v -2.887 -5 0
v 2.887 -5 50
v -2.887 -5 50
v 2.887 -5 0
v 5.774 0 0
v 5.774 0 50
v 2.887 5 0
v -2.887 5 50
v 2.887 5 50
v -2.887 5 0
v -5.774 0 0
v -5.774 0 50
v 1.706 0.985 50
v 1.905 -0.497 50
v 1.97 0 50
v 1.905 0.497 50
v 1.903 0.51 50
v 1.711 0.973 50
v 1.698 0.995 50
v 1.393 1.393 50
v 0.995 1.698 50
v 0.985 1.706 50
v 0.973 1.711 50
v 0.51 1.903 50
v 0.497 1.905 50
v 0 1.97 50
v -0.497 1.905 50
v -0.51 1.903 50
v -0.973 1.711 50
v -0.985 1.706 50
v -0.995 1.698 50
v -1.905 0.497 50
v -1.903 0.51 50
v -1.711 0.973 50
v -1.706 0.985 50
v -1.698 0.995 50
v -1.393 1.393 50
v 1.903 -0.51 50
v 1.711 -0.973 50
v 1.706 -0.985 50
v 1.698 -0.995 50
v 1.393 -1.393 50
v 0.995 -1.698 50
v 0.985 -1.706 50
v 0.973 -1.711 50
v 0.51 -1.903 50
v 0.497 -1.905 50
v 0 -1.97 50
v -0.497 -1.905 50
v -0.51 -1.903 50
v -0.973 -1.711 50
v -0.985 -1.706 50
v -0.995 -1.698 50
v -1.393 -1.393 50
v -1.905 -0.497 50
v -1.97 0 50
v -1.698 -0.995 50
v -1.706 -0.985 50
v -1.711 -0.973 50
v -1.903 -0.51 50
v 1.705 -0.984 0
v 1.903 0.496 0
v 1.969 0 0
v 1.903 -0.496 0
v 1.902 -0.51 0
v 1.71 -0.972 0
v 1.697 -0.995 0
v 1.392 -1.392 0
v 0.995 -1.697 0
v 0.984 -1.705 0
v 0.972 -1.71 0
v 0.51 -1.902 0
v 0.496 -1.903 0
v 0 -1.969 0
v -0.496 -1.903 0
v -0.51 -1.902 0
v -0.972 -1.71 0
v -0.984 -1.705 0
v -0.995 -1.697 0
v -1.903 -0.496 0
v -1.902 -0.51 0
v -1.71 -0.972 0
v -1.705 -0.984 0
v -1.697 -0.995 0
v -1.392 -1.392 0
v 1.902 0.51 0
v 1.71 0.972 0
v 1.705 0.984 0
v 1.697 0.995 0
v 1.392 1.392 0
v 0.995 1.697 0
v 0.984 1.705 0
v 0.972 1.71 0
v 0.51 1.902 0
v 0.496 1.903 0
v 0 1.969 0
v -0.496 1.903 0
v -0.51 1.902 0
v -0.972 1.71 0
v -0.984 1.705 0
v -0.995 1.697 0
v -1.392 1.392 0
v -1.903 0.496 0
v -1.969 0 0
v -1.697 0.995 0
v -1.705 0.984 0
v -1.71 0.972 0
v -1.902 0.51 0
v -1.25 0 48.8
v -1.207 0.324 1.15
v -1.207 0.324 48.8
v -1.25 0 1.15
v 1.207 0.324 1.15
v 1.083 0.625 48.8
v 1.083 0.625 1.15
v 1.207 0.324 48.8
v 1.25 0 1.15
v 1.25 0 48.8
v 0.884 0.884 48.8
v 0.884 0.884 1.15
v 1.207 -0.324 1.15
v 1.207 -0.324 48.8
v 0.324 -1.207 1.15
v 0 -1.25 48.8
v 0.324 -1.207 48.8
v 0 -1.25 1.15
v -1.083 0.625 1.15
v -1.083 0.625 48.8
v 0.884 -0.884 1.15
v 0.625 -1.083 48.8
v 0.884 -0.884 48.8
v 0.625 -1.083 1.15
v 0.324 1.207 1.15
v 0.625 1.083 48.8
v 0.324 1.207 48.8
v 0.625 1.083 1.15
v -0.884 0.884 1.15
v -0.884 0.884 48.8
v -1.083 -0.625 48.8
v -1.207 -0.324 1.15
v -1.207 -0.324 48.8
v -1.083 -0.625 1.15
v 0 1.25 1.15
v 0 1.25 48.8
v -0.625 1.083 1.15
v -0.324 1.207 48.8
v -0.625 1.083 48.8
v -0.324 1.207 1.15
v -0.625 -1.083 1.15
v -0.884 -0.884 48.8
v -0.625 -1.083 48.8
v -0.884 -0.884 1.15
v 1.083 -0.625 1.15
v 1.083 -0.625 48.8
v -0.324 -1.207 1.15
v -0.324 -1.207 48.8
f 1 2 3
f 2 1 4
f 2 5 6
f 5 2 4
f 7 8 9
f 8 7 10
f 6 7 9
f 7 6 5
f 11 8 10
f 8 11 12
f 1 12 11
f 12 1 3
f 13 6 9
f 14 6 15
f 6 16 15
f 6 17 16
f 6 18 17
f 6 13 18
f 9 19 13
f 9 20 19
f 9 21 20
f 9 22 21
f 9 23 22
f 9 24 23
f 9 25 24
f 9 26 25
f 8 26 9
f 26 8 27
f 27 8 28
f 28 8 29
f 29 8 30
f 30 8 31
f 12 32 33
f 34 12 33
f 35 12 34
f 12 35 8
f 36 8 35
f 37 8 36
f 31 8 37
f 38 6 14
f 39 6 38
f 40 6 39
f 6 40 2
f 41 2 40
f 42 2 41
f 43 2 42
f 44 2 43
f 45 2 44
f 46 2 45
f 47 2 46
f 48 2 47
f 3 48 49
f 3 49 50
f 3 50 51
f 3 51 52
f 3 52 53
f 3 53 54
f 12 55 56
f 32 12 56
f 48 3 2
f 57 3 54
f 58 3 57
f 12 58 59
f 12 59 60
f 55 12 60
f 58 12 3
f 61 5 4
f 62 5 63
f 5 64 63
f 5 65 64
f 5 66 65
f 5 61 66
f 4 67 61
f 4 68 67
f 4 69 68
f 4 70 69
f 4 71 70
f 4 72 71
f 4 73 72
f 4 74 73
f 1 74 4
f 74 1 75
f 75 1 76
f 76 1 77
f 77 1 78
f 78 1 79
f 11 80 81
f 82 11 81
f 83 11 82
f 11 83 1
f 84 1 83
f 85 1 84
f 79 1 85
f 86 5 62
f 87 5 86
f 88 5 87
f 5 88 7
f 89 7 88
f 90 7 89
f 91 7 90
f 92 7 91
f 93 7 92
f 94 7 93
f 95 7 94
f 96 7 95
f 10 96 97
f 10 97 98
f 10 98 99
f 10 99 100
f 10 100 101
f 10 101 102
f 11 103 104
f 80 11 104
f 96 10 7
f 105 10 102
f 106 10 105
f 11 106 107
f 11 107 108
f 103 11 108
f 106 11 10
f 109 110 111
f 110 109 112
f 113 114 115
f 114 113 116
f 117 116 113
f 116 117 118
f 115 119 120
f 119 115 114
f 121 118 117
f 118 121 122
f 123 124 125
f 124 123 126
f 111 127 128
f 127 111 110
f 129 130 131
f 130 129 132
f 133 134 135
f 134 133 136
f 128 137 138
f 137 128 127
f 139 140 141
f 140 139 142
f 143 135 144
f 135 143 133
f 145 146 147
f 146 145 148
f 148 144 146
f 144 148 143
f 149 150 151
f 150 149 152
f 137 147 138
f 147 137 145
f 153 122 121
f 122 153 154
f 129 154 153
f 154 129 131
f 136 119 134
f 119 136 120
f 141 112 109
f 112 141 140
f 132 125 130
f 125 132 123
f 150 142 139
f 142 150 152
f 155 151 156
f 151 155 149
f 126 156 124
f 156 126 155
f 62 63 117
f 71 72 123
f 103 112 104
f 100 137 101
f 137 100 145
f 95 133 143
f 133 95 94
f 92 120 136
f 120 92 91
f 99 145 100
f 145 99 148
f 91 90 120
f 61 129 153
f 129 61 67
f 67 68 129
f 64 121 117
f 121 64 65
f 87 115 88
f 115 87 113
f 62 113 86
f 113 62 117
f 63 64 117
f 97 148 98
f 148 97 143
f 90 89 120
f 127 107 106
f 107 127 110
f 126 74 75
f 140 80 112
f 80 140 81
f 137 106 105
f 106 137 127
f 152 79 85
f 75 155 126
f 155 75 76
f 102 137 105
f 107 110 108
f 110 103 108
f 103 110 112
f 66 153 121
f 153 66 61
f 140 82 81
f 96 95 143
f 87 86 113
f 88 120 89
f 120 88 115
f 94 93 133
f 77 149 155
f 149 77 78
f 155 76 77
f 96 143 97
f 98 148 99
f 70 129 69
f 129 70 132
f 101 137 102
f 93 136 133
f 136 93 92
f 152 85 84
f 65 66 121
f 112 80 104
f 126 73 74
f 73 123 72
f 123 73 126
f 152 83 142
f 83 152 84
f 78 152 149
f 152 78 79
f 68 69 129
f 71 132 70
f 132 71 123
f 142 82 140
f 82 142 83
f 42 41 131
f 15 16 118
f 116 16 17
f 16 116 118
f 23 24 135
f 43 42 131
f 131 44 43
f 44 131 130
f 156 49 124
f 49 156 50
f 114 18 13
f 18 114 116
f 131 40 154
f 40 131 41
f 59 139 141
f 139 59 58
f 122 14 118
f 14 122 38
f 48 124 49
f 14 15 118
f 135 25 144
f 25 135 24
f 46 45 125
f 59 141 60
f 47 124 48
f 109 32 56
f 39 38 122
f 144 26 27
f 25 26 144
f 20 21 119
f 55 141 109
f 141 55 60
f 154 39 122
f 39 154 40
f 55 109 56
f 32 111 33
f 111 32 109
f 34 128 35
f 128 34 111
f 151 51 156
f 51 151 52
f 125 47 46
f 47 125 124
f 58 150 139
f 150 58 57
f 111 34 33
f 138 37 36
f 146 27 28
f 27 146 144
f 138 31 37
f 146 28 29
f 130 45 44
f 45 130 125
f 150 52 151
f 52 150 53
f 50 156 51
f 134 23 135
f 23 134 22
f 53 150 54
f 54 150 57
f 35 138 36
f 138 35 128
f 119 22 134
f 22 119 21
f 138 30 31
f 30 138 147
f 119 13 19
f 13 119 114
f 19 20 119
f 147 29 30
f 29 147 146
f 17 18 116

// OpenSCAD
// file: ../print/common.scad
// ============================================================================
// common.scad - shared parameters and helpers for EEELunarRover printed parts
// ----------------------------------------------------------------------------
// Units: millimetres. Every dimension below is taken either from the EEEBug
// V3.1 laser-cut CAD (mech/chassis.svg, measured) or from a verified component
// datasheet (see mech/rover_layout.md section "Verified part dimensions").
//
// Printer envelope: 200 x 200 x 200 mm PLA. We deliberately keep every part
// under 180 mm in its longest axis (lab guidance: do not use the full bed).
// ============================================================================

$fn = 60;
eps = 0.05;

// ---------- Fasteners (verified: M3 nylon hex A/F measured 5.4-5.6 mm) -------
M3_CLEAR  = 3.4;   // clearance for an M3 screw / standoff thread
M3_TAP    = 2.9;   // pilot for self-tapping an M3 into PLA
M3_HEAD   = 6.2;   // M3 pan-head clearance diameter
M3_HEXAF  = 5.8;   // nylon M3 hex standoff/nut across-flats + fit clearance
WALL      = 2.0;   // default wall (5 perimeters @ 0.4 mm nozzle)

// ---------- Chassis: EEEBug V3.1 (from mech/chassis.svg) ---------------------
CH_W   = 95.0;     // chassis width  (X)
CH_L   = 205.0;    // chassis length (Y)
CH_T   = 3.0;      // 3 mm acrylic
AXLE_Y = 105.0;    // drive-wheel centreline (waist pinches 95->85 mm, y 96-114)

// Central M3 anchor rectangle straddling the axle (chassis coords, Ø3.1 holes):
//   (10.5, 95) (84.5, 95) (10.5, 129) (84.5, 129)  ->  74 mm (X) x 34 mm (Y)
ANCHOR_PITCH_X = 74.0;
ANCHOR_PITCH_Y = 34.0;

// Standard modular interface: every small sensor mount bolts on with
// 2x M3 at this pitch.
DOCK_PITCH = 12.0;

// ---------- Verified component dimensions ------------------------------------
// OSRAM SFH 300 phototransistor: 5 mm T-1 3/4 radial, body Ø5.1, ~8.6 tall,
//   leads 2.54 mm pitch.
SFH300_DIA = 5.1;
// Murata MA40S4R 40 kHz ultrasonic Rx: body Ø9.9, 7.1 tall, leads 5.0 mm pitch.
US_DIA   = 9.9;
US_H     = 7.1;
US_PITCH = 5.0;
// Honeywell SS49E linear Hall: flat package 4.1 (W) x 1.7 (thk) x 3.0 (H),
//   3 leads at 1.27 mm pitch.
HALL_W = 4.1;
HALL_T = 1.7;
HALL_H = 3.0;
// Roth perfboards (FR4, 1.5 mm): RE015 = 40.5 x 40.0 ; RE016 = 68.58 x 67.94.
PB_SMALL = [40.5, 40.0, 1.5];
PB_LARGE = [68.58, 67.94, 1.5];

// ---------- helpers ----------------------------------------------------------
module m3_clear(h = 30) { translate([0,0,-eps]) cylinder(d = M3_CLEAR, h = h + 2*eps); }
module m3_tap(h = 30)   { translate([0,0,-eps]) cylinder(d = M3_TAP,   h = h + 2*eps); }
module hexAF(af, h)     { cylinder(r = af/sqrt(3), h = h, $fn = 6); }

// 2x M3 clearance holes at DOCK_PITCH, centred on the origin along X.
module dock_holes(h = 30) {
    for (s = [-1, 1]) translate([s*DOCK_PITCH/2, 0, 0]) m3_clear(h);
}
// main file
// ============================================================================
// pillar.scad - stacking pillar (print x4)
// ----------------------------------------------------------------------------
// One pillar between the two decks at each corner.
//
// HOW IT CONNECTS TO THE DECKS:
//   The pillar has a narrow Ø2.5 mm pilot hole down its centre. At each corner
//   you put a short M3 screw THROUGH the deck's Ø3.4 corner hole and drive it
//   into the pillar end - it self-taps into the Ø2.5 pilot and clamps the deck
//   to the pillar. Two screws per pillar (one through the top deck, one through
//   the bottom deck). Use M3 x 8-10 mm pan-head screws.
//
//   Sturdier alternative: open the pilot to Ø3.4 (set HOLE = M3_CLEAR) and run
//   one length of M3 threaded rod through deck+pillar+deck with a nut each end.
//
// Set PILLAR_H to the gap you want between the decks.
//   openscad -o pillar.stl pillar.scad
// ============================================================================

include <../print/common.scad>

PILLAR_D = 10;      // outer diameter (across flats if hex)
PILLAR_H = 50;      // height = gap between the two decks (~5 cm apart)
HOLE     = 2.5;     // Ø2.5 self-tap pilot (use M3_CLEAR=3.4 for threaded rod)
FLAT     = true;    // hex body (grips better) vs round

module pillar() {
    difference() {
        if (FLAT) cylinder(d = PILLAR_D/cos(30), h = PILLAR_H, $fn = 6);
        else      cylinder(d = PILLAR_D, h = PILLAR_H, $fn = 48);
        translate([0,0,-eps]) cylinder(d = HOLE, h = PILLAR_H + 2*eps, $fn = 24);
        // lead-in chamfers so the screw starts easily at each end
        translate([0,0,-eps])          cylinder(d1 = HOLE+1.5, d2 = HOLE, h = 1.2, $fn = 24);
        translate([0,0,PILLAR_H-1.2])  cylinder(d1 = HOLE, d2 = HOLE+1.5, h = 1.2+eps, $fn = 24);
    }
}

pillar();
